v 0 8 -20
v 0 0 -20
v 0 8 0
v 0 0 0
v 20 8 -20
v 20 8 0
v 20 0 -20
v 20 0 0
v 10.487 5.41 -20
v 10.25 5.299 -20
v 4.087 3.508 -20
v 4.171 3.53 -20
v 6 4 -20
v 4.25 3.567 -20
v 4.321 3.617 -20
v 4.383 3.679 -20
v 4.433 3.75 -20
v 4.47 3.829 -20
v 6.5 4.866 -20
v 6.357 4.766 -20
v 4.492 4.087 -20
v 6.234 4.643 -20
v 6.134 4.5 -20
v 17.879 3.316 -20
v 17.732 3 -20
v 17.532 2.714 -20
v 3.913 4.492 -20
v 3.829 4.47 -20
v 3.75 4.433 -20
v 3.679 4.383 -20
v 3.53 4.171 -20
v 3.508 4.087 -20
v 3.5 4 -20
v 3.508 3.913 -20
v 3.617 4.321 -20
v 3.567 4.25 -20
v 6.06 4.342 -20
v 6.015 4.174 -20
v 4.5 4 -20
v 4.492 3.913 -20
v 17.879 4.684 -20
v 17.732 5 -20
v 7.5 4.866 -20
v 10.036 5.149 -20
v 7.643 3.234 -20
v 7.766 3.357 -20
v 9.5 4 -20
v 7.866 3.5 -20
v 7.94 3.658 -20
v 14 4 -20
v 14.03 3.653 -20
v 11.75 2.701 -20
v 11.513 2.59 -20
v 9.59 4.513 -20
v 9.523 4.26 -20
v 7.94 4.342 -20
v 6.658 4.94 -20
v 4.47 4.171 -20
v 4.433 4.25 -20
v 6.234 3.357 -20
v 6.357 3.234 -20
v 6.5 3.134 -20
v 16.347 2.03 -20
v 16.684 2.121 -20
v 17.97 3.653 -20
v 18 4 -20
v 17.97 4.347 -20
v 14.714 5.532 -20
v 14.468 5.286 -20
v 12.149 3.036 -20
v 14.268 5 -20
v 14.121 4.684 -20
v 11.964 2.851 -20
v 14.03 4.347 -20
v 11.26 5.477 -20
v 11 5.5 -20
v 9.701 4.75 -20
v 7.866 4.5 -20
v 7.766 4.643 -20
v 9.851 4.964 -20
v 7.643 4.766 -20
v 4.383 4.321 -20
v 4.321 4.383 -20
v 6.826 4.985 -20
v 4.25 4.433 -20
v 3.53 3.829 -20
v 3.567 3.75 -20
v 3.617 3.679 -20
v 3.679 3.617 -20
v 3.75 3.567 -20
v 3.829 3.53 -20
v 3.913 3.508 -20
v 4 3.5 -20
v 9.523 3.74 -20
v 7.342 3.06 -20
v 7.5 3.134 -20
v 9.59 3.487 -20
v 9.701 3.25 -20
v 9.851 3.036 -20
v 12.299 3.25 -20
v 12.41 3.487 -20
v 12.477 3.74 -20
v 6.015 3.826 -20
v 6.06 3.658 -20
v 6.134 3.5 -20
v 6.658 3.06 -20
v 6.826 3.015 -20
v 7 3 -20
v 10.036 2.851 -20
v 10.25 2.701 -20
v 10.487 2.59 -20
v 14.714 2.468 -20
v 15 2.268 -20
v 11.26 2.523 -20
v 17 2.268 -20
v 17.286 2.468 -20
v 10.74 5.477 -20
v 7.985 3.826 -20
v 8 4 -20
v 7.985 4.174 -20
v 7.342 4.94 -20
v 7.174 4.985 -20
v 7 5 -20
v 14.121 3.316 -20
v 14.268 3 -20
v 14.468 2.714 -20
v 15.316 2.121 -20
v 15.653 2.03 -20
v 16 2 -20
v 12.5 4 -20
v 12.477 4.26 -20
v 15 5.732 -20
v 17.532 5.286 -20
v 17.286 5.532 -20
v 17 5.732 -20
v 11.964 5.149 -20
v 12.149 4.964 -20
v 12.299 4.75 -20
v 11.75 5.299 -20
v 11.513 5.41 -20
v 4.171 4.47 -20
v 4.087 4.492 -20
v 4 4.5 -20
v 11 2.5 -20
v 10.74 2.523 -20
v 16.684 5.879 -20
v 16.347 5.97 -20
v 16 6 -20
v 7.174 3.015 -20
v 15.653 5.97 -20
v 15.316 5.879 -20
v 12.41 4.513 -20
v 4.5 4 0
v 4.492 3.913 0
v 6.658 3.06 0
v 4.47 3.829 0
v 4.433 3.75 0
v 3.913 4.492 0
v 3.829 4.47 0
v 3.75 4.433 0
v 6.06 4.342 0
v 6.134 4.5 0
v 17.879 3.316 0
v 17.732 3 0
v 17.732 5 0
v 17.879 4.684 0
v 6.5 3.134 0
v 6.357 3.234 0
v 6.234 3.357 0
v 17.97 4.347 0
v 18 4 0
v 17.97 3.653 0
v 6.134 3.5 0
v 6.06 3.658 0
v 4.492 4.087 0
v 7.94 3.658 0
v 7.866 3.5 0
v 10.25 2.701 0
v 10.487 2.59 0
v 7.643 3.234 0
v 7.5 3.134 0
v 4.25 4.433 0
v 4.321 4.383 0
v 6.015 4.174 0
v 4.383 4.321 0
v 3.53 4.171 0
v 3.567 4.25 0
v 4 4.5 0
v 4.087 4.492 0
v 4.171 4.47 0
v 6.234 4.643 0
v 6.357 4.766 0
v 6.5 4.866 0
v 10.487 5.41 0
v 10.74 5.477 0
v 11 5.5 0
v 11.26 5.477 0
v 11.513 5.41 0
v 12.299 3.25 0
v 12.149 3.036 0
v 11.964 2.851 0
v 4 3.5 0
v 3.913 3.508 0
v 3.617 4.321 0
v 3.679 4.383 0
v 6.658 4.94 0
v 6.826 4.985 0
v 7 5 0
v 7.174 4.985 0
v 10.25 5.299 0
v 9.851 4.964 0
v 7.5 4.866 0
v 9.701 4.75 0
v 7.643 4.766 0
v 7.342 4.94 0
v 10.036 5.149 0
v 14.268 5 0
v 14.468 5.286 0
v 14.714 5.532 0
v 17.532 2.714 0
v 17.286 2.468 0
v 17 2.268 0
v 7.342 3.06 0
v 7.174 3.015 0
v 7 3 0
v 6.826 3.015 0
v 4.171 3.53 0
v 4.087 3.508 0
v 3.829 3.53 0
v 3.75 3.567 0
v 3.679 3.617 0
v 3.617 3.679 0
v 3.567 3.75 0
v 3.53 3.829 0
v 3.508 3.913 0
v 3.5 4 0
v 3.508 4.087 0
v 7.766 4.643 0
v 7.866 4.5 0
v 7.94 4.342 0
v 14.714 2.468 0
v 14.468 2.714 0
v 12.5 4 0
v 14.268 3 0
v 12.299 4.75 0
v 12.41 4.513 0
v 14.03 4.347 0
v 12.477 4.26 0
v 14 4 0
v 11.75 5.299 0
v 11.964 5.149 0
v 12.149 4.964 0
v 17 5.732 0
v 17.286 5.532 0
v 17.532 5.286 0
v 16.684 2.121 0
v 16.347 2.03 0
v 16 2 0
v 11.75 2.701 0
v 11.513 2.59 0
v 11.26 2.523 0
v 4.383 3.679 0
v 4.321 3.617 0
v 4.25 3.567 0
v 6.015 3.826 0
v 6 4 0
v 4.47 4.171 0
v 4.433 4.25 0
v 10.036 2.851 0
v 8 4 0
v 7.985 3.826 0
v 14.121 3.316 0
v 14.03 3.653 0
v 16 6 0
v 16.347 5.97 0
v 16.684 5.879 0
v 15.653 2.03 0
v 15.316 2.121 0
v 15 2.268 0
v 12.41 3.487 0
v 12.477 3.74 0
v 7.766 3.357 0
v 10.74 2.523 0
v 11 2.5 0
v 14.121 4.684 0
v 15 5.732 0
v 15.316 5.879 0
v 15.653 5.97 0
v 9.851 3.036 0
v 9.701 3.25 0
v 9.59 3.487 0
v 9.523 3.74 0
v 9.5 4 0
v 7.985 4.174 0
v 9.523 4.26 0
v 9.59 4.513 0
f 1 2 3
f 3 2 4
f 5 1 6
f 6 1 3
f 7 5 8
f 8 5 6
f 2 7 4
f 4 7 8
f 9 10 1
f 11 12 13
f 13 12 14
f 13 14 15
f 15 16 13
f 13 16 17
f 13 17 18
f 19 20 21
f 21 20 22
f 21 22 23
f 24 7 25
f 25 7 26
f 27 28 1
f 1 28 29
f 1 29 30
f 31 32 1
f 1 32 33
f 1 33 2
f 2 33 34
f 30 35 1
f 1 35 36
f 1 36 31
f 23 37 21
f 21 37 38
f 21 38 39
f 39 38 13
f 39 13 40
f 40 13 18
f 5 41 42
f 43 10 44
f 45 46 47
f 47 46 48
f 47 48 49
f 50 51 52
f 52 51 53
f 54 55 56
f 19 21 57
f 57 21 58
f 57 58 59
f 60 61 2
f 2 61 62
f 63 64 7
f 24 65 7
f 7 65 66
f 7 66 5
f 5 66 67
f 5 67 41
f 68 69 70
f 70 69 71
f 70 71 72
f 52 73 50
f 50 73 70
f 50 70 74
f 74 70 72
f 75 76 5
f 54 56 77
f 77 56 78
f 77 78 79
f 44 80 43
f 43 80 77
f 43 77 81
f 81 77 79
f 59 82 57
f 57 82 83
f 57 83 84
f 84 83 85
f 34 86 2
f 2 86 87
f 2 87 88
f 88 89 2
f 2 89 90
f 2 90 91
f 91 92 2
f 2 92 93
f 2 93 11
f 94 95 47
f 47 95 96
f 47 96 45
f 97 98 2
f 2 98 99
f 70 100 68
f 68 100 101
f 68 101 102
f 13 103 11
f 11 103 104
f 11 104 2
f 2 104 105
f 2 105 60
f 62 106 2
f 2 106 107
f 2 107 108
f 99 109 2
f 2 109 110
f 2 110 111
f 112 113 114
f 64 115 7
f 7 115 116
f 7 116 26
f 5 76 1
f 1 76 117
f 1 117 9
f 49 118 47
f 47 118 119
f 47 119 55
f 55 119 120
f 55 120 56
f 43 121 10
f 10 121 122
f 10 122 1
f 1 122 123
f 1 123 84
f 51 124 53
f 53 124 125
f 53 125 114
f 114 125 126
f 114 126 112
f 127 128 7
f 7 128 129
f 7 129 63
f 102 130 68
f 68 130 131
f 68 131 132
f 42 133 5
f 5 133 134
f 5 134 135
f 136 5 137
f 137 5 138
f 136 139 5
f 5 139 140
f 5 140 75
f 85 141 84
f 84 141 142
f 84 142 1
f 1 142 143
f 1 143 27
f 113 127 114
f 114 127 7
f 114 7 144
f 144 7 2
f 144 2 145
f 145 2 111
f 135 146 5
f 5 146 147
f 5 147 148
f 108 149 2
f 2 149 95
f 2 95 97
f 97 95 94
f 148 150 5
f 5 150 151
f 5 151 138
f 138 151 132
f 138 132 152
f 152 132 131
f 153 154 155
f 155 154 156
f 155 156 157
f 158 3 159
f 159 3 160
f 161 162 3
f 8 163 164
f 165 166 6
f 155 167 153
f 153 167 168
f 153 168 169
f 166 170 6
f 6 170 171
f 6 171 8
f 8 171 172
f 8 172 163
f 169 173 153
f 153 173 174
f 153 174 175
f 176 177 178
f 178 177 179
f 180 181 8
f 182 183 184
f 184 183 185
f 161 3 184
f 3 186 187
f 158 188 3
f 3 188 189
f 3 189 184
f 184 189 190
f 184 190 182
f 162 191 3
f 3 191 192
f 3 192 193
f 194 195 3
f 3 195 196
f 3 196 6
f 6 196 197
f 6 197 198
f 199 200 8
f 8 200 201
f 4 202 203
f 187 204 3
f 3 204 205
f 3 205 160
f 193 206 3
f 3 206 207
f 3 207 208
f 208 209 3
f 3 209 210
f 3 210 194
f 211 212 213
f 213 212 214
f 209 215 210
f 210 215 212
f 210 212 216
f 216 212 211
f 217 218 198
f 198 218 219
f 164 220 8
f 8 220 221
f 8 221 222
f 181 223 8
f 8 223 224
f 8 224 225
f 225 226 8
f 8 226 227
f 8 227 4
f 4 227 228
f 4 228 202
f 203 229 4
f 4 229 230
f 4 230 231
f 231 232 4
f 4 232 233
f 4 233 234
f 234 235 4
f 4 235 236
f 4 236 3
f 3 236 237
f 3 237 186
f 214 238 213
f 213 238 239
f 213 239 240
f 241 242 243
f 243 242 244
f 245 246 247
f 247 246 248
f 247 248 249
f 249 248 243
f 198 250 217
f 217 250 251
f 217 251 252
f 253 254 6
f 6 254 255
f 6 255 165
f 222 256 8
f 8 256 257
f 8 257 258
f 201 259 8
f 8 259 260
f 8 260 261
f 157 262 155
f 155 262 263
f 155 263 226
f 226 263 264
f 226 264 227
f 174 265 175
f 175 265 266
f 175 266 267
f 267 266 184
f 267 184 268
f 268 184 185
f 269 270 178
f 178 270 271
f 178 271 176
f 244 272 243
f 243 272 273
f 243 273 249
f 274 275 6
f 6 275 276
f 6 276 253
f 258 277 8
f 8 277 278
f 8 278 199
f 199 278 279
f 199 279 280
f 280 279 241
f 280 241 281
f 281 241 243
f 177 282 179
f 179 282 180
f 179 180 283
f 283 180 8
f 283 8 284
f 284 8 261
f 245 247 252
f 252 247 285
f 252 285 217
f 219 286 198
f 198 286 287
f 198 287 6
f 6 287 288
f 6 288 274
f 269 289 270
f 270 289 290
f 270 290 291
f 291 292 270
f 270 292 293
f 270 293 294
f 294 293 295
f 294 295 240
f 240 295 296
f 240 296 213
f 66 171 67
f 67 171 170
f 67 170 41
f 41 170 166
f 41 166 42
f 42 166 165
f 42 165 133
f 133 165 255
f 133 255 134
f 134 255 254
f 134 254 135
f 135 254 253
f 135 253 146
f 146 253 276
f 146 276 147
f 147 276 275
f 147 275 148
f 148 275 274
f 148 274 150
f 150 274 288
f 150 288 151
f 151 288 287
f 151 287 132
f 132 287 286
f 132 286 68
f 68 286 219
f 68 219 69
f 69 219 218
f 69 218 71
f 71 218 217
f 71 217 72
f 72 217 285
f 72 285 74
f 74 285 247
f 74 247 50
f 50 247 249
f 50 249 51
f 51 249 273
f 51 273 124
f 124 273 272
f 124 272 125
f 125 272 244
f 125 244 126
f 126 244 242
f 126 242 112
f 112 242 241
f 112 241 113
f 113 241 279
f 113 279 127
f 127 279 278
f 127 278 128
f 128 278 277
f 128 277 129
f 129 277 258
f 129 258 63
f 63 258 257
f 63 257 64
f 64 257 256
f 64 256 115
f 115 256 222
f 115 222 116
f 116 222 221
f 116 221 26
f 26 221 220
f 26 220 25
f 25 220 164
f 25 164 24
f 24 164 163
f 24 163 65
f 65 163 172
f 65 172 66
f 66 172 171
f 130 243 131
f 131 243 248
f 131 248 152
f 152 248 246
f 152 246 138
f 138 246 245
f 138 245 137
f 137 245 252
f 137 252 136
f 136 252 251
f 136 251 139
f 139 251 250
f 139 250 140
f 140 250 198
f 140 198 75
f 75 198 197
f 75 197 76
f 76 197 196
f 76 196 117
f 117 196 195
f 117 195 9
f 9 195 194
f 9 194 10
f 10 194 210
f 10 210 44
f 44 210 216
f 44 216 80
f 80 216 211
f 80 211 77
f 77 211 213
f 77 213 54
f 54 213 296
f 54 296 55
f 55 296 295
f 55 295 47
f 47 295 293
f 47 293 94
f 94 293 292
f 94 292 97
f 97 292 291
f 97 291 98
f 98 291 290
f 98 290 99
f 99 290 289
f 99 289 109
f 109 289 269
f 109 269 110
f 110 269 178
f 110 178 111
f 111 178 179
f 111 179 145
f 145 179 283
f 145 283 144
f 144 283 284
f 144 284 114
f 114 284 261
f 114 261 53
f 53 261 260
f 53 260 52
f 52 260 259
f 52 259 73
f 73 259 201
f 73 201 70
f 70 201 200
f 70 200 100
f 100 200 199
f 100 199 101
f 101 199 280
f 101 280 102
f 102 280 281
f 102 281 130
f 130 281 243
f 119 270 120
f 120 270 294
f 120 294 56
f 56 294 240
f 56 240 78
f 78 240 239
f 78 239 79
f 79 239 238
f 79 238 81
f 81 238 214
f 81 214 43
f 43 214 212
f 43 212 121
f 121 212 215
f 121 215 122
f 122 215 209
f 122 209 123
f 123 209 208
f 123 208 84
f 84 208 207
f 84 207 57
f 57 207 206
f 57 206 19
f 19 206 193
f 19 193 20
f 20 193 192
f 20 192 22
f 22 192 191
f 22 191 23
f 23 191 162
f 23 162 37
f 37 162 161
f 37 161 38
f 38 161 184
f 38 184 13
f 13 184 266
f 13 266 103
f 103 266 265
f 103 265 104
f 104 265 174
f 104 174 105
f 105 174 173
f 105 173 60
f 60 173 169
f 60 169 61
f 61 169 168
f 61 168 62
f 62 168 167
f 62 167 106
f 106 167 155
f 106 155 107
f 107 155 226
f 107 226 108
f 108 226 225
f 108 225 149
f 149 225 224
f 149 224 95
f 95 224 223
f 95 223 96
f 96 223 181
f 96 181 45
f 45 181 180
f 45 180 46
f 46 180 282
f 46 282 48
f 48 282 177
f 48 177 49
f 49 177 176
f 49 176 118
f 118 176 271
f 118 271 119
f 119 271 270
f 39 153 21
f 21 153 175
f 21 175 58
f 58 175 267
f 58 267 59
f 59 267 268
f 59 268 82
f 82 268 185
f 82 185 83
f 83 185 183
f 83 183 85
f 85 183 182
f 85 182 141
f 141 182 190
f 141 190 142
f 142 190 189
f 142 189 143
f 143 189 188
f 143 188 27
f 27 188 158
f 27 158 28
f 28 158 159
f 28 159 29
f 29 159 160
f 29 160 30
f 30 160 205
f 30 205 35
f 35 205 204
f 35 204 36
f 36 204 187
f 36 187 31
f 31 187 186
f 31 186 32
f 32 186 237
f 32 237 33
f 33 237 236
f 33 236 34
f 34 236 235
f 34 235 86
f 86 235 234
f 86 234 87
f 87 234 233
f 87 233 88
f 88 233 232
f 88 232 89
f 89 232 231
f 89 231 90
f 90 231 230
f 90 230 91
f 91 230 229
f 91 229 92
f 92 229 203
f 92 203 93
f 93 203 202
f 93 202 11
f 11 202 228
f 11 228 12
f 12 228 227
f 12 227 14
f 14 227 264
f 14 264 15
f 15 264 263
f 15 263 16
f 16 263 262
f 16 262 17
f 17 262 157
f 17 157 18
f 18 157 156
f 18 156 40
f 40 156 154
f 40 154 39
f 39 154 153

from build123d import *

# Parameters (mm, degrees)
SKETCH1_W           = 20
SKETCH1_H           = 8
BOSS_EXTRUDE1_DEPTH = 20
SKETCH2_R           = 0.5
SKETCH2_R_2         = 1
SKETCH2_R_3         = 1.5
SKETCH2_R_4         = 2
CUT_EXTRUDE1_DEPTH  = 21


with BuildPart() as part:
    # Sketch1 → Boss-Extrude1 (new body)
    with BuildSketch(Plane.XY):
        with Locations((10, 4)):
            Rectangle(SKETCH1_W, SKETCH1_H)
    extrude(amount=-BOSS_EXTRUDE1_DEPTH)

    # Sketch2 → Cut-Extrude1 (cut, through all)
    with BuildSketch(Plane.XY):
        with Locations((4, 4)):
            Circle(SKETCH2_R)
        with Locations((7, 4)):
            Circle(SKETCH2_R_2)
        with Locations((11, 4)):
            Circle(SKETCH2_R_3)
        with Locations((16, 4)):
            Circle(SKETCH2_R_4)
    extrude(amount=-CUT_EXTRUDE1_DEPTH, mode=Mode.SUBTRACT)


solid = part.part
